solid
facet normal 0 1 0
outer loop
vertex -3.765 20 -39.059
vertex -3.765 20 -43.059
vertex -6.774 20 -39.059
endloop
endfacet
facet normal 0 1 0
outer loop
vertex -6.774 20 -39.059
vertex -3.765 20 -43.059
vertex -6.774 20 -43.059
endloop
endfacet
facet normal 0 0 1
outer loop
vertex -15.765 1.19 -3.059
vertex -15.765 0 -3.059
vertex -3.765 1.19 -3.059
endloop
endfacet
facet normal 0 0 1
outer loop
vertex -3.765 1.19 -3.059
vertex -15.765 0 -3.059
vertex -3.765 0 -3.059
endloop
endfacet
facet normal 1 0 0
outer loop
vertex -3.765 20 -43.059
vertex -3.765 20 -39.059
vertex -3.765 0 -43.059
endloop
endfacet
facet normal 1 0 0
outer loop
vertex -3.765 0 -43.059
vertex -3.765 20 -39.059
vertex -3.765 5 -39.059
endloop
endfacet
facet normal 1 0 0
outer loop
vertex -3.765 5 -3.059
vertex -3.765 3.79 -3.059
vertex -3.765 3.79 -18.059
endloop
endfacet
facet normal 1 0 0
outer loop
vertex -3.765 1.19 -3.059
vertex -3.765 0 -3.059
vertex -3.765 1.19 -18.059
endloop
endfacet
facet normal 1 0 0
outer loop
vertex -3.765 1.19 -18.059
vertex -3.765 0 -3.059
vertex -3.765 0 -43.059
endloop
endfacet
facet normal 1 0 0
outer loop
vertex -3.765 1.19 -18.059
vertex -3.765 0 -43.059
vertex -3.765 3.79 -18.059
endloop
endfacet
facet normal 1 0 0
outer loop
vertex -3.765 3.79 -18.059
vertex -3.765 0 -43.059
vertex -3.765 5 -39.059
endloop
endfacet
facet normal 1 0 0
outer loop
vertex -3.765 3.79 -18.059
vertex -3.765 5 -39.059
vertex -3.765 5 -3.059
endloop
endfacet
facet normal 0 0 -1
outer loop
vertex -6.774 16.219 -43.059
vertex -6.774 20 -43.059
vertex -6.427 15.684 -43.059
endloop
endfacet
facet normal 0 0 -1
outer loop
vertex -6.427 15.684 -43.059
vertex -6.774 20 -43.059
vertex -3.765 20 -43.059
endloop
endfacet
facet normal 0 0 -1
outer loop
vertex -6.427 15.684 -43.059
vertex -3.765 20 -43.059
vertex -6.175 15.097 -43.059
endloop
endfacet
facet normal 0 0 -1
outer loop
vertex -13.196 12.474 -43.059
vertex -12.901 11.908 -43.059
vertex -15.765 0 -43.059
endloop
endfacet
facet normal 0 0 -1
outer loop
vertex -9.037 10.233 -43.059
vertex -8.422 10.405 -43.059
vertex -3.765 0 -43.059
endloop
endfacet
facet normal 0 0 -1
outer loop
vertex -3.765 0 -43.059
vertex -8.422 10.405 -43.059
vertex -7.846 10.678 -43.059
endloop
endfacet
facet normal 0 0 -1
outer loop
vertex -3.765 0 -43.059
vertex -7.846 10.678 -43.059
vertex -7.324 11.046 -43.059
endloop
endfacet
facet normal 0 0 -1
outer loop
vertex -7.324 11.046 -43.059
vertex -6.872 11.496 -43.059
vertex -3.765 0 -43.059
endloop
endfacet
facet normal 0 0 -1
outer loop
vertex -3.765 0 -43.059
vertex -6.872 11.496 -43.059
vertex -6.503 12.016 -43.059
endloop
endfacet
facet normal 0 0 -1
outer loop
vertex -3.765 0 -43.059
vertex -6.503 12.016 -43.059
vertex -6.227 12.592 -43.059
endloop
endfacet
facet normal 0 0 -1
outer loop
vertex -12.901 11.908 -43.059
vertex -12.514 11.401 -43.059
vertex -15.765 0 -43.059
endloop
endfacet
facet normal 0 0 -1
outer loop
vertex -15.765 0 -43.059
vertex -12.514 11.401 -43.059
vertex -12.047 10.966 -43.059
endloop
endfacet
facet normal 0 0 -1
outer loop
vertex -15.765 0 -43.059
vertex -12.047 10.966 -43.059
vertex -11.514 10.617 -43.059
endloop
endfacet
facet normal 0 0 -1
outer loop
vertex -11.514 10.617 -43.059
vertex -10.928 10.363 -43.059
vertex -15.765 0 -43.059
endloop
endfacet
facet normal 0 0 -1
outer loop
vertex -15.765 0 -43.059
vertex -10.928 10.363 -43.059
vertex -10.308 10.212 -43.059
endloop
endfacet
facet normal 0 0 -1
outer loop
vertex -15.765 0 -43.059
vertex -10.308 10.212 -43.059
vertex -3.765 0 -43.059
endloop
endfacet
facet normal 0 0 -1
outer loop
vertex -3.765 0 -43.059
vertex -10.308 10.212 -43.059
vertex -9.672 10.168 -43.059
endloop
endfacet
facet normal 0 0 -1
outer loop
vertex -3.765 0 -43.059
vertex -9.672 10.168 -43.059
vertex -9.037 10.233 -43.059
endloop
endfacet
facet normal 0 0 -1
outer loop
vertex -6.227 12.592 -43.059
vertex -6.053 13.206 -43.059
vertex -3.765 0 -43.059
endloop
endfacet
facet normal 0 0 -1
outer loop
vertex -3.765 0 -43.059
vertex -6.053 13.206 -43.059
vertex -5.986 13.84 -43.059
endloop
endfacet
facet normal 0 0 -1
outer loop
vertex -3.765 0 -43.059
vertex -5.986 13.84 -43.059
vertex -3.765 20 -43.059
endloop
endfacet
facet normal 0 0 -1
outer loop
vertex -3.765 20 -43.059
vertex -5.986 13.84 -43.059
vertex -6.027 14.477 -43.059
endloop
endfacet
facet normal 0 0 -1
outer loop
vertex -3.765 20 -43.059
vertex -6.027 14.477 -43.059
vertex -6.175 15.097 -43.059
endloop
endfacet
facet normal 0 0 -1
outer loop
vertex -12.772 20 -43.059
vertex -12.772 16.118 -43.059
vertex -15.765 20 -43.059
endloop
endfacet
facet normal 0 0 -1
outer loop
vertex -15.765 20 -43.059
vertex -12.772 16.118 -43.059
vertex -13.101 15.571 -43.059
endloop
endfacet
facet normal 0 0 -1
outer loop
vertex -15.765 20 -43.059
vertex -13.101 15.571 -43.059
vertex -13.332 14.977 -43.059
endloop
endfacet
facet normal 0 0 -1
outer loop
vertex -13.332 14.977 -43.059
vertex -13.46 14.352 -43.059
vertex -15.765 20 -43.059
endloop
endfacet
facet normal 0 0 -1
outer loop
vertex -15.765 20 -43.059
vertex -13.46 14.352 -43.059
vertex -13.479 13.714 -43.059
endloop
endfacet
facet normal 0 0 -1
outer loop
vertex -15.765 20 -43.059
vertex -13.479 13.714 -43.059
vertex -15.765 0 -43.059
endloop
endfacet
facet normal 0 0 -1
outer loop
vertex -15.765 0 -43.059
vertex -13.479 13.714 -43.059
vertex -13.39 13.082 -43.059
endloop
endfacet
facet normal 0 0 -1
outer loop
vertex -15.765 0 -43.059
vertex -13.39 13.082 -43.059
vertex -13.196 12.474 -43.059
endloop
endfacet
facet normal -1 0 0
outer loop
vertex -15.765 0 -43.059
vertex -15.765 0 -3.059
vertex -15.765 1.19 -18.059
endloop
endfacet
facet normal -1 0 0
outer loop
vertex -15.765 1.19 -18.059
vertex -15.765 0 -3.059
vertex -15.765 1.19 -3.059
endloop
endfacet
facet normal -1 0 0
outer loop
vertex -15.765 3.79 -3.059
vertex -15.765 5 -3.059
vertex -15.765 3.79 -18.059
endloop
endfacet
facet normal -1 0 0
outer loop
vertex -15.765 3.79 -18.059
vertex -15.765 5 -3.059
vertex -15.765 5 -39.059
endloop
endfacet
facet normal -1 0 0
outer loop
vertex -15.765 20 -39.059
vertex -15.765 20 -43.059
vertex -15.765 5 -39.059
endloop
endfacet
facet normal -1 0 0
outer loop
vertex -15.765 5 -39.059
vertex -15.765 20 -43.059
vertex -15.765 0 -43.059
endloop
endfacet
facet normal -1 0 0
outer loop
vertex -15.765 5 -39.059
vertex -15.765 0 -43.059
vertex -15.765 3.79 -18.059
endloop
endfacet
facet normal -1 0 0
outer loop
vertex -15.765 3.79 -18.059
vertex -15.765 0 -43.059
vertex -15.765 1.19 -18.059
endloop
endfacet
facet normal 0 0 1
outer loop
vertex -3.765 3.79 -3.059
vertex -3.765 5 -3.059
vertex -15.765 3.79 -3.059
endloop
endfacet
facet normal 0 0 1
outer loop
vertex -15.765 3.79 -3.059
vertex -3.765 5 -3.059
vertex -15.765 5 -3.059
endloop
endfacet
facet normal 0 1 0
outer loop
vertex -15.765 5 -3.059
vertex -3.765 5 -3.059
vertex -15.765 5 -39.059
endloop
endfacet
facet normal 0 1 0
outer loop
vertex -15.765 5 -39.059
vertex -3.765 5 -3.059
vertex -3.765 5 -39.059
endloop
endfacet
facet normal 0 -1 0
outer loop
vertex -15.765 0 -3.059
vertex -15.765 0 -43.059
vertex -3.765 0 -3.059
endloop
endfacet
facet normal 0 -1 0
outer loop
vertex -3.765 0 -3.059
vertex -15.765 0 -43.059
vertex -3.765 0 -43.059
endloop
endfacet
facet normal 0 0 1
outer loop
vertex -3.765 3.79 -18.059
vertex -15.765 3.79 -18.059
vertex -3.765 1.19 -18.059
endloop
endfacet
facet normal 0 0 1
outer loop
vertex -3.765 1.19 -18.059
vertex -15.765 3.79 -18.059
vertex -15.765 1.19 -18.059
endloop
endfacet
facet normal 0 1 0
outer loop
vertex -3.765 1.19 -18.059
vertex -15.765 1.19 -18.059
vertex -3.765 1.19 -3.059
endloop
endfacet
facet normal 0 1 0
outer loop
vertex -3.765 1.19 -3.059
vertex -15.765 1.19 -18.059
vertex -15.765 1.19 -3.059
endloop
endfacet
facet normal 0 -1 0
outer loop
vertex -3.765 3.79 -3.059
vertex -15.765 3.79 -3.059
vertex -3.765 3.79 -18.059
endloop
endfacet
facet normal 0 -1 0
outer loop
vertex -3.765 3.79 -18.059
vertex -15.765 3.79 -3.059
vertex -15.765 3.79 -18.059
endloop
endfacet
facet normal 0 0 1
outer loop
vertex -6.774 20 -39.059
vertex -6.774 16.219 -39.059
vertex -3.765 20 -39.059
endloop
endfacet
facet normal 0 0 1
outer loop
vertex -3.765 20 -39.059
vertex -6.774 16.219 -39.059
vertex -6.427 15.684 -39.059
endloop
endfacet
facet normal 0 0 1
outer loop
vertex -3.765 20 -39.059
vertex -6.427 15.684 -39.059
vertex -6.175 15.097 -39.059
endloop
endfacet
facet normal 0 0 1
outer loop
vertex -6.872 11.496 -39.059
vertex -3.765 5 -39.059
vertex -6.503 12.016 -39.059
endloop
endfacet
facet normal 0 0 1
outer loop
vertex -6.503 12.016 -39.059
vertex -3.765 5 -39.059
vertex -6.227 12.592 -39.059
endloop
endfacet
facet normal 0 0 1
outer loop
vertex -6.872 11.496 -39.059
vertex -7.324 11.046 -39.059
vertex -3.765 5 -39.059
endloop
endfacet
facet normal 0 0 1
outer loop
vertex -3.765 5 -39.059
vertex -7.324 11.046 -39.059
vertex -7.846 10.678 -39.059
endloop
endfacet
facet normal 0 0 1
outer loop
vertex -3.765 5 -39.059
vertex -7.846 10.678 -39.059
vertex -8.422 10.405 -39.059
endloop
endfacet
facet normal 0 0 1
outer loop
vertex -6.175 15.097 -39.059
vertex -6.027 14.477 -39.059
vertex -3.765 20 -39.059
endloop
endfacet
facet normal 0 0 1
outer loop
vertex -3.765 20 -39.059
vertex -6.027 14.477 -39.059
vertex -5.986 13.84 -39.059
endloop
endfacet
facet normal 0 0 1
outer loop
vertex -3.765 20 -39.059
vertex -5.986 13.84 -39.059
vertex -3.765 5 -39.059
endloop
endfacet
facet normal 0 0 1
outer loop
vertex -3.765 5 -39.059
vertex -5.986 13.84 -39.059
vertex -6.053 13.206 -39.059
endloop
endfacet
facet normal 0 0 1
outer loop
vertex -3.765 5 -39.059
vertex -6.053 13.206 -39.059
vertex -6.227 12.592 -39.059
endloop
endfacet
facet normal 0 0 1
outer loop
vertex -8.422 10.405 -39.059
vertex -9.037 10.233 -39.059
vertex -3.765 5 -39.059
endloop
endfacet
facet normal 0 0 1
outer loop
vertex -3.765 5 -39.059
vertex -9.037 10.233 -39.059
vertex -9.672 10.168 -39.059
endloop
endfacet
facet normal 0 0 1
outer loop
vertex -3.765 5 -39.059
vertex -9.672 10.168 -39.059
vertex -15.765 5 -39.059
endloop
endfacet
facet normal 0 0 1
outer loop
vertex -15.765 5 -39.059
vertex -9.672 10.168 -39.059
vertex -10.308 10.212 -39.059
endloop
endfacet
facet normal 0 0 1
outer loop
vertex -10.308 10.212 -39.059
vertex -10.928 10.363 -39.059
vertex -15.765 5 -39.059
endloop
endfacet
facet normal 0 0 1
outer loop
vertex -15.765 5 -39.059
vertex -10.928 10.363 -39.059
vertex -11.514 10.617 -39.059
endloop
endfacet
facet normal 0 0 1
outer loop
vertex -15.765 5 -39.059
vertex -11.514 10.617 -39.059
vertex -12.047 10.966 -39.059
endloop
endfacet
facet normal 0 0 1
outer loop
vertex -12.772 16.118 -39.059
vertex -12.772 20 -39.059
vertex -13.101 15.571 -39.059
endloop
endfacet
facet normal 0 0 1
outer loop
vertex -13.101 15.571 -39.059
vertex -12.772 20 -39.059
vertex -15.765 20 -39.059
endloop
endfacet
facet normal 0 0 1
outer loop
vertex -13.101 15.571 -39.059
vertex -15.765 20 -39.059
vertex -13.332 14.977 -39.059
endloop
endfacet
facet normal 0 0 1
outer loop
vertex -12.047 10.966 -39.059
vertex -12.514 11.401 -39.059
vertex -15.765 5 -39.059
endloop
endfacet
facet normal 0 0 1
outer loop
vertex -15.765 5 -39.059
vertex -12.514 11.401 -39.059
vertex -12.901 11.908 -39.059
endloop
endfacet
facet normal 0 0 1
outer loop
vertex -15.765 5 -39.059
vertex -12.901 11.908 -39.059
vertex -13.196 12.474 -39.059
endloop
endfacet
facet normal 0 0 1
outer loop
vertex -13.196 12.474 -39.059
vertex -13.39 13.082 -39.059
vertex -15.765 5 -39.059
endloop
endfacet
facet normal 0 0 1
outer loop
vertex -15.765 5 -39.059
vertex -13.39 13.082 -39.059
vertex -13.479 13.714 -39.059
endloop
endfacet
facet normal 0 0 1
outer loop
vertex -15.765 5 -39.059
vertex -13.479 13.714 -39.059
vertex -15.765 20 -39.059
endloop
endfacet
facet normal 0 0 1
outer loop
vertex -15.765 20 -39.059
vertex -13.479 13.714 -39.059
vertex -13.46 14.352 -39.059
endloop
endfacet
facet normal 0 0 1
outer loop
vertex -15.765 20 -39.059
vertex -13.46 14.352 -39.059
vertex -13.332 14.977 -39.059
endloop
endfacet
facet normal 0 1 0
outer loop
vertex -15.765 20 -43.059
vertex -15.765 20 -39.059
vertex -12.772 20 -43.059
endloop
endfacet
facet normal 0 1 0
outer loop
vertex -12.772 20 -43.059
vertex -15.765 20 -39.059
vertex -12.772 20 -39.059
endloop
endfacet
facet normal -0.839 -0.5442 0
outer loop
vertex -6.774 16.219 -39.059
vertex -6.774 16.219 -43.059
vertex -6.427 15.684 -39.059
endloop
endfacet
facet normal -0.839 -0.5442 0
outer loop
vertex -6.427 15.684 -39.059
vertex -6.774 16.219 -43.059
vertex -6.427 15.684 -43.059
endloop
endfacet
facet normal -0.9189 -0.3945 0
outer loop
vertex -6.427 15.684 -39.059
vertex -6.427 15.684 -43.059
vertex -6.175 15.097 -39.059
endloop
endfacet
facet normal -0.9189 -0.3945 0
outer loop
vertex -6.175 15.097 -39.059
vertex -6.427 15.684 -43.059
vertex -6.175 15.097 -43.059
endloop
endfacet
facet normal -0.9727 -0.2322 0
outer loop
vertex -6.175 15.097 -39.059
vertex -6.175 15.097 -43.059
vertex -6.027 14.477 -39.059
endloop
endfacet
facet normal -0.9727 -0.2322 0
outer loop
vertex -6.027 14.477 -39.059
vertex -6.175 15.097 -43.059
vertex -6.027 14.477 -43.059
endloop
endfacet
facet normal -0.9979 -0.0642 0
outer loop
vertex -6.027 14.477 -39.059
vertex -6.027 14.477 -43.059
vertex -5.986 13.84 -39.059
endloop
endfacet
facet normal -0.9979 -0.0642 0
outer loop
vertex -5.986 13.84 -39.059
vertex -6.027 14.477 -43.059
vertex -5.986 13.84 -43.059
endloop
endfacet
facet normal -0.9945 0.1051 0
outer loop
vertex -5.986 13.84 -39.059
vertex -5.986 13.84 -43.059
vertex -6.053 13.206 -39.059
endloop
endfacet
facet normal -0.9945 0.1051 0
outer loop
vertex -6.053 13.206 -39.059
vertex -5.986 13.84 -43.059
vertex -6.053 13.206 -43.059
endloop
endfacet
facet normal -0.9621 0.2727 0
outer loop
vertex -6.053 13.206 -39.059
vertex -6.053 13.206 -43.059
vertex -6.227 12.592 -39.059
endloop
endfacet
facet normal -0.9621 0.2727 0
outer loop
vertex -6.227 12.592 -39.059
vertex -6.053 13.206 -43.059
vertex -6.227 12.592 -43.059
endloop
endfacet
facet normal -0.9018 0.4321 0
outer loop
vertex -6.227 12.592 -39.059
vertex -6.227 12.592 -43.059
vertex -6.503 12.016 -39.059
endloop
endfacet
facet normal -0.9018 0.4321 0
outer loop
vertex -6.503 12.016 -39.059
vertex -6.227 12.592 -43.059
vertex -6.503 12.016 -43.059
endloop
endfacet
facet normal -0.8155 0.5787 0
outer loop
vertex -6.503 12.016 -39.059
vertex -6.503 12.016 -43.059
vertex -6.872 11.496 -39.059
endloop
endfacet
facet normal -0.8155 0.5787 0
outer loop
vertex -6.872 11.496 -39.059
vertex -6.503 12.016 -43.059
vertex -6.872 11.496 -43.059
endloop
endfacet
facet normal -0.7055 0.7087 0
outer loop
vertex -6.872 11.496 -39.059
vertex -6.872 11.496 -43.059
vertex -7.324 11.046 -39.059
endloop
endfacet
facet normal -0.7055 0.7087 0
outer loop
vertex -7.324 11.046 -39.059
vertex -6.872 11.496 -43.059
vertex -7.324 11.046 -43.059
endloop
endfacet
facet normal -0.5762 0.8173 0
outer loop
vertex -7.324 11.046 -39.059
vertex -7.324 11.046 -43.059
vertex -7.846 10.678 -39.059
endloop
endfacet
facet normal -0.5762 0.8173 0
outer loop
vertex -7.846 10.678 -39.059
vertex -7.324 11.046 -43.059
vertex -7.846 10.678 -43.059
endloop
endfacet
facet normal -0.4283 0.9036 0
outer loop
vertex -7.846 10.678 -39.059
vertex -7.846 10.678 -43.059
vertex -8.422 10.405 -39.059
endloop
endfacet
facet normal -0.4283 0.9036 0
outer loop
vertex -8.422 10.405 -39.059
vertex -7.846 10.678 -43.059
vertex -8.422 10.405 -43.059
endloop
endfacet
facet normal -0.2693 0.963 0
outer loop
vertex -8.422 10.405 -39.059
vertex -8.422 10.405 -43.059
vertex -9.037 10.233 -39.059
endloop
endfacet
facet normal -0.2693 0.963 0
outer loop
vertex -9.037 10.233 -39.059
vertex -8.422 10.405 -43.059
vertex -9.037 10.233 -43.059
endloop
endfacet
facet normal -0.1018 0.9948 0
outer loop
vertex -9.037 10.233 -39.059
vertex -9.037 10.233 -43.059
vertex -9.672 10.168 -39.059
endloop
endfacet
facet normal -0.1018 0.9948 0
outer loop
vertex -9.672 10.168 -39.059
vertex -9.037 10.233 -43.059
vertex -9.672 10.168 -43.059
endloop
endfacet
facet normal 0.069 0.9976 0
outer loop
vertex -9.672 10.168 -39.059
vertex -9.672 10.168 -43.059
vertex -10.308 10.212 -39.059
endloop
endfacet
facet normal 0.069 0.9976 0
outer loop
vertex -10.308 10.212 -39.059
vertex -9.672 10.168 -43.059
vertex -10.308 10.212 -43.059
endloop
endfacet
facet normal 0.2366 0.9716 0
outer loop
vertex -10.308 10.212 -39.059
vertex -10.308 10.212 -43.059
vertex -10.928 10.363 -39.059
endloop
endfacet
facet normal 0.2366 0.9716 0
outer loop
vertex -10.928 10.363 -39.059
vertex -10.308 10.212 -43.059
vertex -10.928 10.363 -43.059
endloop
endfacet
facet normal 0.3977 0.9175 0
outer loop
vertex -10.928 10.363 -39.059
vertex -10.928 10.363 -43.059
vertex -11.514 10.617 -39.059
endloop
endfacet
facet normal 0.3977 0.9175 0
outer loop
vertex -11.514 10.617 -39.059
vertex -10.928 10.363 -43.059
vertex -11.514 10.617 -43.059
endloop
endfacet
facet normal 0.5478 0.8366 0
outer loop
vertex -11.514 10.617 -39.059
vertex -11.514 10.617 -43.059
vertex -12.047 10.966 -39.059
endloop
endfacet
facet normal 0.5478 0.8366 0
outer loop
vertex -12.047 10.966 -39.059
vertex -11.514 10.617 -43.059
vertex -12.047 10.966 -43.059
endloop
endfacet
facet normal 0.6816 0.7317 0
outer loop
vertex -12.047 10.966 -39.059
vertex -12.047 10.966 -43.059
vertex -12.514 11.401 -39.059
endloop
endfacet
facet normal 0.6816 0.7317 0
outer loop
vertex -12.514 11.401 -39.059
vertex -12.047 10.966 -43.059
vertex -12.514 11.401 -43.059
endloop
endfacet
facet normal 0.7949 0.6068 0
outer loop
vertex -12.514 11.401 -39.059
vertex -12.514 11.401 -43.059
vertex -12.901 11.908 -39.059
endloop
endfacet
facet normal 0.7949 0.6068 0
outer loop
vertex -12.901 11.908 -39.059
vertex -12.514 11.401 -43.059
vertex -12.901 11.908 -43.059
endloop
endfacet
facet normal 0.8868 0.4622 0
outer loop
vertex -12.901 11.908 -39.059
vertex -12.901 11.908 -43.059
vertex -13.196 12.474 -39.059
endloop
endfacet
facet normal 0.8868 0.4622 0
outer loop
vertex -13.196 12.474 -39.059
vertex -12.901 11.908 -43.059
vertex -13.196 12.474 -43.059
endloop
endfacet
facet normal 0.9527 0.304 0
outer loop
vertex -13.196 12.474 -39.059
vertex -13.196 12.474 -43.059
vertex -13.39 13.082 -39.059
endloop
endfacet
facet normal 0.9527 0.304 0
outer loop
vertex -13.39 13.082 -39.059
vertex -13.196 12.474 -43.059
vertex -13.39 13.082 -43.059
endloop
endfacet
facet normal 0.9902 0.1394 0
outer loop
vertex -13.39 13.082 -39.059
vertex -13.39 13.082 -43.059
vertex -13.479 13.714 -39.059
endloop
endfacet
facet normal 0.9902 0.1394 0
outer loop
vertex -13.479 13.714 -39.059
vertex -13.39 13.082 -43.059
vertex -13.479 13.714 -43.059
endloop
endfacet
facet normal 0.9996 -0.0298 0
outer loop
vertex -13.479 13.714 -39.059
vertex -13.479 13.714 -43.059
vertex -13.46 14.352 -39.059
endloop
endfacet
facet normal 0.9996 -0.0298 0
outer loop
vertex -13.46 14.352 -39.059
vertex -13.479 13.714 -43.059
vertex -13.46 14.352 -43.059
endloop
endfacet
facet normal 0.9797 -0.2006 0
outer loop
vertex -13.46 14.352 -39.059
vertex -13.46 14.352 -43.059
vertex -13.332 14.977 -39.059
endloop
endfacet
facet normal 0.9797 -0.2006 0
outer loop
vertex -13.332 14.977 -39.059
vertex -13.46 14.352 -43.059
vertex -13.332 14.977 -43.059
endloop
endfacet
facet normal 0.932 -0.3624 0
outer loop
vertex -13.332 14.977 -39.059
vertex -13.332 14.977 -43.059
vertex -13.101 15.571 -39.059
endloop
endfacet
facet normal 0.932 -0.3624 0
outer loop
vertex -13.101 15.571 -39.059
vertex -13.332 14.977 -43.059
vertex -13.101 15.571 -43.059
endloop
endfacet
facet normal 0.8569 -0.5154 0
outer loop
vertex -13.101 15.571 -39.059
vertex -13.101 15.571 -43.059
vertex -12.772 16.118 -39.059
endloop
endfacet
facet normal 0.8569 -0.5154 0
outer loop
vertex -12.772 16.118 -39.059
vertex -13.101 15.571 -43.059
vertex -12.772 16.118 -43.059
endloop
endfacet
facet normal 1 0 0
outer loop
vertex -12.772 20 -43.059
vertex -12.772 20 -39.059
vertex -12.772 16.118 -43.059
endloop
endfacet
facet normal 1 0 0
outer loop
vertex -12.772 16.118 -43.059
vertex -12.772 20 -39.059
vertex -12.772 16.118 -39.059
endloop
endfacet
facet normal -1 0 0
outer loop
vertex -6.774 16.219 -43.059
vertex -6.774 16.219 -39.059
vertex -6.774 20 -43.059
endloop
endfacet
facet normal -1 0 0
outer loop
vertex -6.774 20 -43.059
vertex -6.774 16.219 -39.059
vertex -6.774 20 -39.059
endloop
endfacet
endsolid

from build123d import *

# Parameters (mm, degrees)
SKETCH2_W           = 12
SKETCH2_H           = 40
BOSS_EXTRUDE1_DEPTH = 5
SKETCH3_W           = 12.004104261
SKETCH3_H           = 2.6
CUT_EXTRUDE1_DEPTH  = 15
SKETCH4_W           = 12
SKETCH4_H           = 4
BOSS_EXTRUDE2_DEPTH = 15
SKETCH5_R           = 3.75
CUT_EXTRUDE2_DEPTH  = 15
SKETCH6_W           = 5.997636367
SKETCH6_H           = 3.881980202
CUT_EXTRUDE3_DEPTH  = 10


with BuildPart() as part:
    # Sketch2 → Boss-Extrude1 (new body)
    with BuildSketch(Plane(origin=(0, 0, 0), x_dir=(1, 0, 0), z_dir=(0, 1, 0))):
        with Locations((-9.764705882, 23.058823529)):
            Rectangle(SKETCH2_W, SKETCH2_H)
    extrude(amount=BOSS_EXTRUDE1_DEPTH)

    # Sketch3 → Cut-Extrude1 (cut)
    with BuildSketch(Plane.XY.offset(-3.058823529)):
        with Locations((-9.766758013, 2.489565118)):
            Rectangle(SKETCH3_W, SKETCH3_H)
    extrude(amount=-CUT_EXTRUDE1_DEPTH, mode=Mode.SUBTRACT)

    # Sketch4 → Boss-Extrude2 (add)
    with BuildSketch(Plane(origin=(0, 5, 0), x_dir=(1, 0, 0), z_dir=(0, 1, 0))):
        with Locations((-9.764705882, 41.058823529)):
            Rectangle(SKETCH4_W, SKETCH4_H)
    extrude(amount=BOSS_EXTRUDE2_DEPTH)

    # Sketch5 → Cut-Extrude2 (cut)
    with BuildSketch(Plane(origin=(0, 0, -43.058823529), x_dir=(-1, 0, 0), z_dir=(0, 0, -1))):
        with Locations((9.734798195, 13.917907096)):
            Circle(SKETCH5_R)
    extrude(amount=-CUT_EXTRUDE2_DEPTH, mode=Mode.SUBTRACT)

    # Sketch6 → Cut-Extrude3 (cut)
    with BuildSketch(Plane(origin=(0, 0, -43.058823529), x_dir=(-1, 0, 0), z_dir=(0, 0, -1))):
        with Locations((9.772755291, 18.059009899)):
            Rectangle(SKETCH6_W, SKETCH6_H)
    extrude(amount=-CUT_EXTRUDE3_DEPTH, mode=Mode.SUBTRACT)


solid = part.part
